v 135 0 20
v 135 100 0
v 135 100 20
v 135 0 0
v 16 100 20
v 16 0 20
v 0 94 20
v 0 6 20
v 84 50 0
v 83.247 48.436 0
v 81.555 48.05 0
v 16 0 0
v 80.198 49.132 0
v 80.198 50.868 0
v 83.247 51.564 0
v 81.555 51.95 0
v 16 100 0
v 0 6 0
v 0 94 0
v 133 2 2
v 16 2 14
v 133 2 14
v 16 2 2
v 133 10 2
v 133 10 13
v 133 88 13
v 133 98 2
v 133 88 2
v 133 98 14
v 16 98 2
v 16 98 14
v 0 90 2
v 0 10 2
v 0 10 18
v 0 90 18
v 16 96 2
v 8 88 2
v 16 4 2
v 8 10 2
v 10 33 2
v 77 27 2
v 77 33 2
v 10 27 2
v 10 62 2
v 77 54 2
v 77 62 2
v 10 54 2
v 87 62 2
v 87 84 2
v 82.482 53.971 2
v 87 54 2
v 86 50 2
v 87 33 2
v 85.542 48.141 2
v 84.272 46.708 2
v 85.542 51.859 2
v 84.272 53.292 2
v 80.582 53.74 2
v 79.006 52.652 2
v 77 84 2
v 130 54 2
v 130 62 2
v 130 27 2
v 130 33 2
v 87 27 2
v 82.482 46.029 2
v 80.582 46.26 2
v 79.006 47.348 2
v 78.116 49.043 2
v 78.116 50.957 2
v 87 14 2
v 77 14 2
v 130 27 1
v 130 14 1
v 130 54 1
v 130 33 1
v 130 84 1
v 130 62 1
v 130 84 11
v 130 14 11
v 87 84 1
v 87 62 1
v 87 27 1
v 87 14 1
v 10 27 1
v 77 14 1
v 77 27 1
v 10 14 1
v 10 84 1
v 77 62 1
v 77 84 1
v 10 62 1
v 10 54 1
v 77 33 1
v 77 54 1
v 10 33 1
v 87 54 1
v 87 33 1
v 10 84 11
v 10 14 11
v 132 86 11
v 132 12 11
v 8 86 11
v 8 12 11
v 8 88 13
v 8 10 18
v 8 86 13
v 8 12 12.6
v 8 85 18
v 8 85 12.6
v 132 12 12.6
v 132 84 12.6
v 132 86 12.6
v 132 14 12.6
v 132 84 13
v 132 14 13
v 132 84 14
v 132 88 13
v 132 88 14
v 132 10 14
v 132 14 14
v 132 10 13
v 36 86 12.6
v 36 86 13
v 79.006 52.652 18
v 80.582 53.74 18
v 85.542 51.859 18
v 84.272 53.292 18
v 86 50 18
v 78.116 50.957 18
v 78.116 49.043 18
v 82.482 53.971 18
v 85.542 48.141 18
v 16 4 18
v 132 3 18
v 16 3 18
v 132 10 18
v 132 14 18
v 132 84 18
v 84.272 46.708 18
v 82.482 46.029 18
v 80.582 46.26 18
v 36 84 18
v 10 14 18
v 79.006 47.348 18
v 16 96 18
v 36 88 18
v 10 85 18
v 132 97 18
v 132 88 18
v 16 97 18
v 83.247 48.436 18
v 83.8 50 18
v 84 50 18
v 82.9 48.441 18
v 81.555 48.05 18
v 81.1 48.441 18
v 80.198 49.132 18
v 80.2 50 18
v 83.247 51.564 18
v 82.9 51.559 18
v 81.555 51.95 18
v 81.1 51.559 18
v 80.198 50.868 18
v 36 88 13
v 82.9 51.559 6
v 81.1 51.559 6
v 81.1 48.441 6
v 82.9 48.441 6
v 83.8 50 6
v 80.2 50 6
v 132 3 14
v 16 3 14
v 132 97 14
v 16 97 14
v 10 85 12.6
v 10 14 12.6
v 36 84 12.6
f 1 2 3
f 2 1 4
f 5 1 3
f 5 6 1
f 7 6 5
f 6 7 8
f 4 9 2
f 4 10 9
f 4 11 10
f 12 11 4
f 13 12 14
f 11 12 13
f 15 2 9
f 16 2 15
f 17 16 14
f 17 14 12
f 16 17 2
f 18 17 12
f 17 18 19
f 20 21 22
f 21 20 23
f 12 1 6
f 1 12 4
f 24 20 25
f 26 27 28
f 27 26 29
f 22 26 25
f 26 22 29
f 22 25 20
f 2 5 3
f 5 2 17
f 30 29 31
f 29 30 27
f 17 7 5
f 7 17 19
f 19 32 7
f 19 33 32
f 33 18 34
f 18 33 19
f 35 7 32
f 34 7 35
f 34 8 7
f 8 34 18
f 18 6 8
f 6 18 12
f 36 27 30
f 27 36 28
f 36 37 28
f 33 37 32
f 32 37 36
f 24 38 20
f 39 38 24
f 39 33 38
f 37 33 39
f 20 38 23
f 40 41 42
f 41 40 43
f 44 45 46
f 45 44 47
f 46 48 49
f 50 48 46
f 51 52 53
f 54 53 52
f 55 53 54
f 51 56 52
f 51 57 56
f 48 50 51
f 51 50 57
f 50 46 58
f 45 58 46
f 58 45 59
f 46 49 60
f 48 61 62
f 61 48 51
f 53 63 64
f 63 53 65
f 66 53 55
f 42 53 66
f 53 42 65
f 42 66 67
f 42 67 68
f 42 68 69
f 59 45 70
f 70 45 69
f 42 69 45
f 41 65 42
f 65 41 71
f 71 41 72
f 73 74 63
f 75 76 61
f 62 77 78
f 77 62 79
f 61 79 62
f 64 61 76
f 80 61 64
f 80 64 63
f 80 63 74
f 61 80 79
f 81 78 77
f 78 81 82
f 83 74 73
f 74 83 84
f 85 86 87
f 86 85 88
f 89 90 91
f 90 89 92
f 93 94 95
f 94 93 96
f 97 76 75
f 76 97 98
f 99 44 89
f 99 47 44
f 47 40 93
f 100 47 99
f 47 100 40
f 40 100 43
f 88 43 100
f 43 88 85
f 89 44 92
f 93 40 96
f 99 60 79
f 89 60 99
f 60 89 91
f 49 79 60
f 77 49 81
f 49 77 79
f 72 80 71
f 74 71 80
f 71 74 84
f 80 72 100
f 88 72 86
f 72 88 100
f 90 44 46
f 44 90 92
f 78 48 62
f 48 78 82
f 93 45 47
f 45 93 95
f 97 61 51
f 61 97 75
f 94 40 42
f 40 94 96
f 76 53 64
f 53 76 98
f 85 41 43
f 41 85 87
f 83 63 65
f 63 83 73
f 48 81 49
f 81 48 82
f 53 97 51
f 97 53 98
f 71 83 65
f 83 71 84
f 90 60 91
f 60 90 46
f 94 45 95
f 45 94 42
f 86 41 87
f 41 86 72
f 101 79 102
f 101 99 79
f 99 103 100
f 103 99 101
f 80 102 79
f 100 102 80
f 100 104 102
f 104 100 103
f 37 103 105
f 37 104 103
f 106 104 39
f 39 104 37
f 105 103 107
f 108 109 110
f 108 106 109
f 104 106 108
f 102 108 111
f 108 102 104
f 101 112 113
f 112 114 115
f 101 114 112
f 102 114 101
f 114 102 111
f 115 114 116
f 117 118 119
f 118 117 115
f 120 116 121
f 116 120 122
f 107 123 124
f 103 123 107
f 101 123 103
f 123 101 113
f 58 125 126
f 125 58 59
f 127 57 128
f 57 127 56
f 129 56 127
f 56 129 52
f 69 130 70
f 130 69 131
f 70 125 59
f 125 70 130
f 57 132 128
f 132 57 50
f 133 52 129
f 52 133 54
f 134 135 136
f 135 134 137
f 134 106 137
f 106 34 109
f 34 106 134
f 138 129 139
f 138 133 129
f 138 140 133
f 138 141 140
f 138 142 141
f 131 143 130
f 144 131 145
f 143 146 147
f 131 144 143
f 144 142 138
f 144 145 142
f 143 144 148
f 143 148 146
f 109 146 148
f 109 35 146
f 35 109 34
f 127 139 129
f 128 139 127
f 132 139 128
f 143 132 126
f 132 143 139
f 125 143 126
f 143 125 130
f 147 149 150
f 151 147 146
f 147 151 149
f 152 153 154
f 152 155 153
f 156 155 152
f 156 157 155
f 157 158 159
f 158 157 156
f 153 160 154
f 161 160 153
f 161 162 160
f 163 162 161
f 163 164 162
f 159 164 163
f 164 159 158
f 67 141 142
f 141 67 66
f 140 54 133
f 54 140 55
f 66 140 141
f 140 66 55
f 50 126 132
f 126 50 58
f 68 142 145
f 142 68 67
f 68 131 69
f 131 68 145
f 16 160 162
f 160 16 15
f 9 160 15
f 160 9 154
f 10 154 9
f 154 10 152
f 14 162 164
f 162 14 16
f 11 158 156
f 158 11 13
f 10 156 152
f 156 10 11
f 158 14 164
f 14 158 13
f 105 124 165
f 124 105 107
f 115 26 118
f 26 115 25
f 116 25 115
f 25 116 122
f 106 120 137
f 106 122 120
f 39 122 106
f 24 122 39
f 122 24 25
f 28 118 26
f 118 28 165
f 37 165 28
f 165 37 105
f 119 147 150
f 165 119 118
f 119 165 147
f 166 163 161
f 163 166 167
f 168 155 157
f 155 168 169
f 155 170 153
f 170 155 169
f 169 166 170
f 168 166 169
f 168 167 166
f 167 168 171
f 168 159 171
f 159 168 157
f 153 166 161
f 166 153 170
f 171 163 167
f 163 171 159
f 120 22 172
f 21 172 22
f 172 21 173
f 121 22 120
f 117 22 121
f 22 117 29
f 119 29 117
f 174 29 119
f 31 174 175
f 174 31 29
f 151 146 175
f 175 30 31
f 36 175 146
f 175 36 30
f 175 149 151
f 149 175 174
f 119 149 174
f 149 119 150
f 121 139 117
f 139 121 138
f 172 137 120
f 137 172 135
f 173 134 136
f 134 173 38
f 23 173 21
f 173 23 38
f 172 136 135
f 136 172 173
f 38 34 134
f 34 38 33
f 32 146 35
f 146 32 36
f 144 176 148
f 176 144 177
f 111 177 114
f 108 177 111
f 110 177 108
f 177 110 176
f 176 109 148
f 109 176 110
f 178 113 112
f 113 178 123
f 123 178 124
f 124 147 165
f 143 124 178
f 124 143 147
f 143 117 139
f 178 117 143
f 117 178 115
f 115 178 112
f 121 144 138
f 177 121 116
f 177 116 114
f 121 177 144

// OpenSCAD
/*
 * $Id: rompac.scad 2029 2025-03-02 08:44:02 curt
 */

width = 100;
length = 135;
basethick = 2;
pin = 82;
bevel_width = 6;
bevel_len = 16;
high = 20;
plat = 11;
sidethick = 2;

// edit this to generate either "b" - bottom
// or "t" - top
// or both -"tb"
express = "bt";

module platform() {
    translate([8,12,0]) cube([2,73,plat]);
    translate([8,12,0]) cube([124,2,plat]);
    translate([8,84,0]) cube([124,2,plat]);
    translate([130,12,0]) cube([2,73,plat]); 
}

module lip() {
    translate([8,10,0]) cube([126,2,plat+2]);
    translate([8,86,0]) cube([126,2,plat+2]);
    translate([132,10,0]) cube([2,78,plat+2]); 
}

module base() {
    difference() {
        linear_extrude(height = basethick) 
            polygon([
                [ 0, bevel_width],
                [ 0, width - bevel_width],
                [ bevel_len, width],
                [ length, width],
                [ length, 0],
                [ bevel_len, 0]]);
        translate([10, 14, 1]) cube([120, 70, 2]);
    }
    translate([0, 54, 0]) cube([length, 8, 2]);
    translate([0, 27, 0]) cube([length, 6, 2]);
    translate([pin - 5, 0, 0]) cube([10, width, 2]);
}

module edge() {
    union() {
        translate([bevel_len, 0, 0]) cube([length - bevel_len, sidethick, high]);
        translate([length - sidethick, 0, 0]) cube([sidethick, width, high]);
        translate([bevel_len, width - sidethick, 0]) cube([length - bevel_len, sidethick, high]);
        linear_extrude(height = high) union() {
            polygon([[0, bevel_width + sidethick], [0, bevel_width], 
                [bevel_len, 0], [bevel_len, sidethick]]);
            polygon([[0, width - bevel_width], [0, width - bevel_width - sidethick], 
                [bevel_len, width - sidethick], [bevel_len, width]]);
        }
    }
}

module top() {
    toplip = 6;
    linear_extrude(height = basethick) 
        polygon([
                [ 0, bevel_width],
                [ 0, width - bevel_width],
                [ bevel_len, width],
                [ length, width],
                [ length, 0],
                [ bevel_len, 0]]);
    
    translate([pin, width / 2, 0]) cylinder(high - 6, r = 1.8);

    translate([bevel_len, sidethick, 0]) cube([length - bevel_len - sidethick, 1, toplip]);
    translate([length - sidethick - 1, sidethick, 0]) cube([1, width - (sidethick * 2), toplip]);
    translate([bevel_len, width - sidethick - 1, 0]) cube([length - bevel_len - sidethick, 1, toplip]);
    linear_extrude(height = 18) {
        polygon([[0, bevel_width + (sidethick *2)], [0, bevel_width + sidethick], 
                [bevel_len, sidethick], [bevel_len, (sidethick*2)]]);
        polygon([[0, width - bevel_width - sidethick], [0, width - bevel_width - (sidethick * 2)], 
                [bevel_len, width - (sidethick * 2)], [bevel_len, width-sidethick]]);
    }
    translate([8,15,0]) cube([2,72, high - plat - 1.6]);
    translate([36, 12, 0]) cube([96,4,high - plat - 1.6]);
    translate([8, 86, 0]) cube([124,4,high - plat -1.6]);
}

if (search("b", express)) {
    difference() {
        union() {
            edge();
            base();
            translate([pin, width / 2, 0]) cylinder(high-2, r = 4);
            platform();
        }
        translate([pin, width / 2, -1]) cylinder(high+2, r = 2);
    }
    color("blue") lip();
}

if (search("t", express)) {
    echo("t");
    if (search("b", express)) {
        color("red") translate([0, width, high]) rotate([180, 0, 0]) top();
        echo("tb");
    } else {
        top();
    }
}

 
